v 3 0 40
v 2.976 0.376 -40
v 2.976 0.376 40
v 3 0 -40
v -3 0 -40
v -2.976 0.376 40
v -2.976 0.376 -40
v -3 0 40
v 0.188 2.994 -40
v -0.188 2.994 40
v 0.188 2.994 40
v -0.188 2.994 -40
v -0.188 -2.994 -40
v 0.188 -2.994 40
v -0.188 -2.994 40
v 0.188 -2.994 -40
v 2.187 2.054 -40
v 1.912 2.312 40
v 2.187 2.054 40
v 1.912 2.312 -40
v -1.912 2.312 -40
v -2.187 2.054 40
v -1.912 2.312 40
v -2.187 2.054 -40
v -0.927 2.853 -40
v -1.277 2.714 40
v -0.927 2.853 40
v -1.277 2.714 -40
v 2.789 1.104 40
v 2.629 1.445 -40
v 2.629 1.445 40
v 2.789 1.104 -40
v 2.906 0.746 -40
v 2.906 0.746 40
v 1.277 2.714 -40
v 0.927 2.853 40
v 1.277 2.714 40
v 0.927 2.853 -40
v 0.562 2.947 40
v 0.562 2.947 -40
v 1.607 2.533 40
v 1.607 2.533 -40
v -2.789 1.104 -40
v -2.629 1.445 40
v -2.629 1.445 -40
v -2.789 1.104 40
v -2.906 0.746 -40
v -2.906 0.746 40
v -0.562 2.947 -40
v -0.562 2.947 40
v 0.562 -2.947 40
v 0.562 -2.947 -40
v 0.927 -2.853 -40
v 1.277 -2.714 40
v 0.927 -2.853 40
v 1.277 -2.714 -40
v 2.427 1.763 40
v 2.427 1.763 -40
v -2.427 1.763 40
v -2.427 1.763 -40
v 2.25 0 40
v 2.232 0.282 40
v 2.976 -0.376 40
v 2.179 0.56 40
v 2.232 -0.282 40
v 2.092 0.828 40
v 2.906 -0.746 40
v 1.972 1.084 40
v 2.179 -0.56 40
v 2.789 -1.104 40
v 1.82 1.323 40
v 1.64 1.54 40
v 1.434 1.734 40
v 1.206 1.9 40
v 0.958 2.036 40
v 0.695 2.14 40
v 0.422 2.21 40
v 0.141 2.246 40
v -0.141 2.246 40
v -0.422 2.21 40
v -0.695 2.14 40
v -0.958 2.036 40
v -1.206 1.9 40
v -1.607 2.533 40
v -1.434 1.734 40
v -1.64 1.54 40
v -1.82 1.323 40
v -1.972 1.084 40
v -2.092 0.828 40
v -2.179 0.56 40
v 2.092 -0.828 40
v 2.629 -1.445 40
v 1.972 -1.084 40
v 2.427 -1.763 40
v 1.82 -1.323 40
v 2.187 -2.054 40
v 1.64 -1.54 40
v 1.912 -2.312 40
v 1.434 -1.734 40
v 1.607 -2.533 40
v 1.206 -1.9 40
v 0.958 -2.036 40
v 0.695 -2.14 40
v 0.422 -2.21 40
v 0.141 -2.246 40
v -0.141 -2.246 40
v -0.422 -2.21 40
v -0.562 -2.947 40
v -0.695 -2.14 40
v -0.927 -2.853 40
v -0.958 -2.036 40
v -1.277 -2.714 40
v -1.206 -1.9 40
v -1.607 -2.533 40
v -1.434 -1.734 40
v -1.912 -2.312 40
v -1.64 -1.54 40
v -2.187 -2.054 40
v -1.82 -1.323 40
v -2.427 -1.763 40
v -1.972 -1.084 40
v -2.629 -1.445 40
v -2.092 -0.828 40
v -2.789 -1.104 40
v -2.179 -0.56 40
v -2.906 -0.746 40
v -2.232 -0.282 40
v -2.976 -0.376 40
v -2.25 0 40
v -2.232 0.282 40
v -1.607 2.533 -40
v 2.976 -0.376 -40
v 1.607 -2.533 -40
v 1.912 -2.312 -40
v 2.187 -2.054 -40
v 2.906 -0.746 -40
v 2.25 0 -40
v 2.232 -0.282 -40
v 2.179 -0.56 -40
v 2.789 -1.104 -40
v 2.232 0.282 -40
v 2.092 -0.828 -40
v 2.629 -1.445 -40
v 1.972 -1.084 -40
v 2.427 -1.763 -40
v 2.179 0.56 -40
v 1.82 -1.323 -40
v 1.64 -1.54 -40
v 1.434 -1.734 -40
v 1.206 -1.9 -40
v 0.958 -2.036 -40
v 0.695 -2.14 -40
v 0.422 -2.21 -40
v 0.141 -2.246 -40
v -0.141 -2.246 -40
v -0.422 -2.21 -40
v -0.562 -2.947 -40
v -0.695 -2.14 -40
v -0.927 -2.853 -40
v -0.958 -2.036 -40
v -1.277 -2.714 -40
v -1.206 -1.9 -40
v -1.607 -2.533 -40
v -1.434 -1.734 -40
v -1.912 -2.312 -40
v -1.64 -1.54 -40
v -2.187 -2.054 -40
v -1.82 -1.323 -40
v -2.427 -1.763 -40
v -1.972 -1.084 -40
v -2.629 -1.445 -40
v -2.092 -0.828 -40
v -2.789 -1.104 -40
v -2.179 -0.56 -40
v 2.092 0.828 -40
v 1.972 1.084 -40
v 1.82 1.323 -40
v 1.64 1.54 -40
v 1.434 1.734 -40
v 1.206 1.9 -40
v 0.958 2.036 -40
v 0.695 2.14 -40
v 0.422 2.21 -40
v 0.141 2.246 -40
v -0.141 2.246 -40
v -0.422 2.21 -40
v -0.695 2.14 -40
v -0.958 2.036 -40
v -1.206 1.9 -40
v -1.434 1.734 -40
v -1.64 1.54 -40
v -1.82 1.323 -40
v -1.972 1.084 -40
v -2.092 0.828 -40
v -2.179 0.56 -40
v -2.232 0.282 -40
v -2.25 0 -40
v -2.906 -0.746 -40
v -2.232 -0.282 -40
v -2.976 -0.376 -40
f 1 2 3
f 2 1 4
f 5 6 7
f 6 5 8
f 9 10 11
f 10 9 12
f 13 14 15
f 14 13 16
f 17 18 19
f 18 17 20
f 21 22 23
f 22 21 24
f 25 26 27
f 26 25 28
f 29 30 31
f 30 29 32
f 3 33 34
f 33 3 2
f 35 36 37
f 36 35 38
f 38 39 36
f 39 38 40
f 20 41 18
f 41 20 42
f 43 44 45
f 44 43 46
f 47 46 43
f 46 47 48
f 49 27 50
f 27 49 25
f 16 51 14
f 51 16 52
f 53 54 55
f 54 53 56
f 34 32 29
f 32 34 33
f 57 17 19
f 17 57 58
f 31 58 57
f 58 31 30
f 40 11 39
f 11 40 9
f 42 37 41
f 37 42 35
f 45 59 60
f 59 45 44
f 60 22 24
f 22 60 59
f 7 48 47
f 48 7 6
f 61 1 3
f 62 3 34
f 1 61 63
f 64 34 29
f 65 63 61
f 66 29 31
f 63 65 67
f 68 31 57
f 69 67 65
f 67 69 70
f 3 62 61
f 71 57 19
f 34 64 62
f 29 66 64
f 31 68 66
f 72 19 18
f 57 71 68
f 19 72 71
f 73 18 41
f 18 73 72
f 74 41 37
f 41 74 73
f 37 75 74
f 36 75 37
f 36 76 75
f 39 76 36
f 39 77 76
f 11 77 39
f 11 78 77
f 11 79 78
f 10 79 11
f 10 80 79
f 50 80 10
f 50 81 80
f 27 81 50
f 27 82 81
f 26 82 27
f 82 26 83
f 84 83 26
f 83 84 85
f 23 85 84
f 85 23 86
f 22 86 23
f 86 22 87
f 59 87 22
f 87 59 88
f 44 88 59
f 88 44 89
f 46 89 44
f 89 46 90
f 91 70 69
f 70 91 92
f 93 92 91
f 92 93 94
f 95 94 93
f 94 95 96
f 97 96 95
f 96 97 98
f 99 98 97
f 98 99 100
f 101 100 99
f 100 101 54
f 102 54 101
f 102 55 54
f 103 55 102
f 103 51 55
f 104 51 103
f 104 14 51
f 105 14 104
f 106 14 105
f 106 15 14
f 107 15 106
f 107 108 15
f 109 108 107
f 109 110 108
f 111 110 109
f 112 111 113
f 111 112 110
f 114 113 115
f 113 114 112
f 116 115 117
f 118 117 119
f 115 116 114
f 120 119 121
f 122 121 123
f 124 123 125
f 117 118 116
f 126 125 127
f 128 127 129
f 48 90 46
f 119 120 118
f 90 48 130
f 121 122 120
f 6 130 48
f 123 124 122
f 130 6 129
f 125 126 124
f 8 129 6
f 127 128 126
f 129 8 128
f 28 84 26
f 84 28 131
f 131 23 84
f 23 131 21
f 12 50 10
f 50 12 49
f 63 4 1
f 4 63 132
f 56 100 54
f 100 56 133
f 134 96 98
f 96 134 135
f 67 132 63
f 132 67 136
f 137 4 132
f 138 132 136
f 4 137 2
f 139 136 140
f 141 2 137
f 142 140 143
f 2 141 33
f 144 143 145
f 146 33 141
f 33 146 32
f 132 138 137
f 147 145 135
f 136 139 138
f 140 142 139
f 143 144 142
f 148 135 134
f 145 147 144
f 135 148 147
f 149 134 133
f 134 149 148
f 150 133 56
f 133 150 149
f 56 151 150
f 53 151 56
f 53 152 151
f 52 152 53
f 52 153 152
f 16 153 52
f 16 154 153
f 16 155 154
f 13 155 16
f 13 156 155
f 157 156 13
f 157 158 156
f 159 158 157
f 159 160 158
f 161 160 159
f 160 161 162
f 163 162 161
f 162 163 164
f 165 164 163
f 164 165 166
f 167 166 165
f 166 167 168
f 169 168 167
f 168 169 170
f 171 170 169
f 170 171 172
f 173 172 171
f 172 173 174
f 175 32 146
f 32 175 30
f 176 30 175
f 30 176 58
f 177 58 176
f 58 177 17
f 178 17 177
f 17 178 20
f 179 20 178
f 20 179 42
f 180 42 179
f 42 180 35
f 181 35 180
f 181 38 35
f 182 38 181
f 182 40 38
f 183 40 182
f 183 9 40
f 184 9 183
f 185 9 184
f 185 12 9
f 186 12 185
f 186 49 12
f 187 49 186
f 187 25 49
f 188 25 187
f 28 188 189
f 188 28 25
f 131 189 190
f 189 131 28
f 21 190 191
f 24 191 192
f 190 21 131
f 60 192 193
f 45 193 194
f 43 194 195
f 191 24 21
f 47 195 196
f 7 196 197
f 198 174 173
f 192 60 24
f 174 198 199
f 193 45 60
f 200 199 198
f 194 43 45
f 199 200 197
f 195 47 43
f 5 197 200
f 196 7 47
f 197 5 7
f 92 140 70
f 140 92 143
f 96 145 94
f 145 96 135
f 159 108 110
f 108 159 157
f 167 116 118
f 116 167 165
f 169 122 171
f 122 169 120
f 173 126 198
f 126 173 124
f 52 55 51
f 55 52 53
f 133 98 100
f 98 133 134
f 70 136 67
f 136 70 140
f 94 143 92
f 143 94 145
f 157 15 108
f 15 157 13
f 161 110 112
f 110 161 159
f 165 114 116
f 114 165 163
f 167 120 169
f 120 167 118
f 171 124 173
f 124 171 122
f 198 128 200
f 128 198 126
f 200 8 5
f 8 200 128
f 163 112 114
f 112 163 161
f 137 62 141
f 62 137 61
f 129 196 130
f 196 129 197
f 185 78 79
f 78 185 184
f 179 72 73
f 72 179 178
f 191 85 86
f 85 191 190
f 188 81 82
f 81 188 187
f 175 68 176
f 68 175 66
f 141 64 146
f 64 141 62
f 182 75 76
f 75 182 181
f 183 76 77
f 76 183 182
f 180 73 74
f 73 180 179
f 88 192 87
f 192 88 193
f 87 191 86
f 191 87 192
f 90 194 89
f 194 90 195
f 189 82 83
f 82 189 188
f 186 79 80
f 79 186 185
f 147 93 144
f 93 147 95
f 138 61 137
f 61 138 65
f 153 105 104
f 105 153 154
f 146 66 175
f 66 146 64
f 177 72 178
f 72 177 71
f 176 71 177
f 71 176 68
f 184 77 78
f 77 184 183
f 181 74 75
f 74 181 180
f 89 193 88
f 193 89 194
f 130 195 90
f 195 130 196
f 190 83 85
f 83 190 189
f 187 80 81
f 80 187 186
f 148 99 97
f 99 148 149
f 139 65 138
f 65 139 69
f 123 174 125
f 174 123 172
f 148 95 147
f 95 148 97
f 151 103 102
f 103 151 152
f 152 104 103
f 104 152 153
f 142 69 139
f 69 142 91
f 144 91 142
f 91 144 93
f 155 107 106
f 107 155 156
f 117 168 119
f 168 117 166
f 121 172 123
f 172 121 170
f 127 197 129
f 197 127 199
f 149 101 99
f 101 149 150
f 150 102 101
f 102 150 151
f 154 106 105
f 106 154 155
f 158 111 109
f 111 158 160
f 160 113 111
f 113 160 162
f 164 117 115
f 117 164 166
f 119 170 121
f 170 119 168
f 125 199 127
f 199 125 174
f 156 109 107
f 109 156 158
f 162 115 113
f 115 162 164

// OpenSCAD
$fn = 50;


difference() {
	union() {
		translate(v = [0, 0, -40.0000000000]) {
			cylinder(h = 80, r = 3.0000000000);
		}
	}
	union() {
		translate(v = [0, 0, -100.0000000000]) {
			cylinder(h = 200, r = 2.2500000000);
		}
	}
}
